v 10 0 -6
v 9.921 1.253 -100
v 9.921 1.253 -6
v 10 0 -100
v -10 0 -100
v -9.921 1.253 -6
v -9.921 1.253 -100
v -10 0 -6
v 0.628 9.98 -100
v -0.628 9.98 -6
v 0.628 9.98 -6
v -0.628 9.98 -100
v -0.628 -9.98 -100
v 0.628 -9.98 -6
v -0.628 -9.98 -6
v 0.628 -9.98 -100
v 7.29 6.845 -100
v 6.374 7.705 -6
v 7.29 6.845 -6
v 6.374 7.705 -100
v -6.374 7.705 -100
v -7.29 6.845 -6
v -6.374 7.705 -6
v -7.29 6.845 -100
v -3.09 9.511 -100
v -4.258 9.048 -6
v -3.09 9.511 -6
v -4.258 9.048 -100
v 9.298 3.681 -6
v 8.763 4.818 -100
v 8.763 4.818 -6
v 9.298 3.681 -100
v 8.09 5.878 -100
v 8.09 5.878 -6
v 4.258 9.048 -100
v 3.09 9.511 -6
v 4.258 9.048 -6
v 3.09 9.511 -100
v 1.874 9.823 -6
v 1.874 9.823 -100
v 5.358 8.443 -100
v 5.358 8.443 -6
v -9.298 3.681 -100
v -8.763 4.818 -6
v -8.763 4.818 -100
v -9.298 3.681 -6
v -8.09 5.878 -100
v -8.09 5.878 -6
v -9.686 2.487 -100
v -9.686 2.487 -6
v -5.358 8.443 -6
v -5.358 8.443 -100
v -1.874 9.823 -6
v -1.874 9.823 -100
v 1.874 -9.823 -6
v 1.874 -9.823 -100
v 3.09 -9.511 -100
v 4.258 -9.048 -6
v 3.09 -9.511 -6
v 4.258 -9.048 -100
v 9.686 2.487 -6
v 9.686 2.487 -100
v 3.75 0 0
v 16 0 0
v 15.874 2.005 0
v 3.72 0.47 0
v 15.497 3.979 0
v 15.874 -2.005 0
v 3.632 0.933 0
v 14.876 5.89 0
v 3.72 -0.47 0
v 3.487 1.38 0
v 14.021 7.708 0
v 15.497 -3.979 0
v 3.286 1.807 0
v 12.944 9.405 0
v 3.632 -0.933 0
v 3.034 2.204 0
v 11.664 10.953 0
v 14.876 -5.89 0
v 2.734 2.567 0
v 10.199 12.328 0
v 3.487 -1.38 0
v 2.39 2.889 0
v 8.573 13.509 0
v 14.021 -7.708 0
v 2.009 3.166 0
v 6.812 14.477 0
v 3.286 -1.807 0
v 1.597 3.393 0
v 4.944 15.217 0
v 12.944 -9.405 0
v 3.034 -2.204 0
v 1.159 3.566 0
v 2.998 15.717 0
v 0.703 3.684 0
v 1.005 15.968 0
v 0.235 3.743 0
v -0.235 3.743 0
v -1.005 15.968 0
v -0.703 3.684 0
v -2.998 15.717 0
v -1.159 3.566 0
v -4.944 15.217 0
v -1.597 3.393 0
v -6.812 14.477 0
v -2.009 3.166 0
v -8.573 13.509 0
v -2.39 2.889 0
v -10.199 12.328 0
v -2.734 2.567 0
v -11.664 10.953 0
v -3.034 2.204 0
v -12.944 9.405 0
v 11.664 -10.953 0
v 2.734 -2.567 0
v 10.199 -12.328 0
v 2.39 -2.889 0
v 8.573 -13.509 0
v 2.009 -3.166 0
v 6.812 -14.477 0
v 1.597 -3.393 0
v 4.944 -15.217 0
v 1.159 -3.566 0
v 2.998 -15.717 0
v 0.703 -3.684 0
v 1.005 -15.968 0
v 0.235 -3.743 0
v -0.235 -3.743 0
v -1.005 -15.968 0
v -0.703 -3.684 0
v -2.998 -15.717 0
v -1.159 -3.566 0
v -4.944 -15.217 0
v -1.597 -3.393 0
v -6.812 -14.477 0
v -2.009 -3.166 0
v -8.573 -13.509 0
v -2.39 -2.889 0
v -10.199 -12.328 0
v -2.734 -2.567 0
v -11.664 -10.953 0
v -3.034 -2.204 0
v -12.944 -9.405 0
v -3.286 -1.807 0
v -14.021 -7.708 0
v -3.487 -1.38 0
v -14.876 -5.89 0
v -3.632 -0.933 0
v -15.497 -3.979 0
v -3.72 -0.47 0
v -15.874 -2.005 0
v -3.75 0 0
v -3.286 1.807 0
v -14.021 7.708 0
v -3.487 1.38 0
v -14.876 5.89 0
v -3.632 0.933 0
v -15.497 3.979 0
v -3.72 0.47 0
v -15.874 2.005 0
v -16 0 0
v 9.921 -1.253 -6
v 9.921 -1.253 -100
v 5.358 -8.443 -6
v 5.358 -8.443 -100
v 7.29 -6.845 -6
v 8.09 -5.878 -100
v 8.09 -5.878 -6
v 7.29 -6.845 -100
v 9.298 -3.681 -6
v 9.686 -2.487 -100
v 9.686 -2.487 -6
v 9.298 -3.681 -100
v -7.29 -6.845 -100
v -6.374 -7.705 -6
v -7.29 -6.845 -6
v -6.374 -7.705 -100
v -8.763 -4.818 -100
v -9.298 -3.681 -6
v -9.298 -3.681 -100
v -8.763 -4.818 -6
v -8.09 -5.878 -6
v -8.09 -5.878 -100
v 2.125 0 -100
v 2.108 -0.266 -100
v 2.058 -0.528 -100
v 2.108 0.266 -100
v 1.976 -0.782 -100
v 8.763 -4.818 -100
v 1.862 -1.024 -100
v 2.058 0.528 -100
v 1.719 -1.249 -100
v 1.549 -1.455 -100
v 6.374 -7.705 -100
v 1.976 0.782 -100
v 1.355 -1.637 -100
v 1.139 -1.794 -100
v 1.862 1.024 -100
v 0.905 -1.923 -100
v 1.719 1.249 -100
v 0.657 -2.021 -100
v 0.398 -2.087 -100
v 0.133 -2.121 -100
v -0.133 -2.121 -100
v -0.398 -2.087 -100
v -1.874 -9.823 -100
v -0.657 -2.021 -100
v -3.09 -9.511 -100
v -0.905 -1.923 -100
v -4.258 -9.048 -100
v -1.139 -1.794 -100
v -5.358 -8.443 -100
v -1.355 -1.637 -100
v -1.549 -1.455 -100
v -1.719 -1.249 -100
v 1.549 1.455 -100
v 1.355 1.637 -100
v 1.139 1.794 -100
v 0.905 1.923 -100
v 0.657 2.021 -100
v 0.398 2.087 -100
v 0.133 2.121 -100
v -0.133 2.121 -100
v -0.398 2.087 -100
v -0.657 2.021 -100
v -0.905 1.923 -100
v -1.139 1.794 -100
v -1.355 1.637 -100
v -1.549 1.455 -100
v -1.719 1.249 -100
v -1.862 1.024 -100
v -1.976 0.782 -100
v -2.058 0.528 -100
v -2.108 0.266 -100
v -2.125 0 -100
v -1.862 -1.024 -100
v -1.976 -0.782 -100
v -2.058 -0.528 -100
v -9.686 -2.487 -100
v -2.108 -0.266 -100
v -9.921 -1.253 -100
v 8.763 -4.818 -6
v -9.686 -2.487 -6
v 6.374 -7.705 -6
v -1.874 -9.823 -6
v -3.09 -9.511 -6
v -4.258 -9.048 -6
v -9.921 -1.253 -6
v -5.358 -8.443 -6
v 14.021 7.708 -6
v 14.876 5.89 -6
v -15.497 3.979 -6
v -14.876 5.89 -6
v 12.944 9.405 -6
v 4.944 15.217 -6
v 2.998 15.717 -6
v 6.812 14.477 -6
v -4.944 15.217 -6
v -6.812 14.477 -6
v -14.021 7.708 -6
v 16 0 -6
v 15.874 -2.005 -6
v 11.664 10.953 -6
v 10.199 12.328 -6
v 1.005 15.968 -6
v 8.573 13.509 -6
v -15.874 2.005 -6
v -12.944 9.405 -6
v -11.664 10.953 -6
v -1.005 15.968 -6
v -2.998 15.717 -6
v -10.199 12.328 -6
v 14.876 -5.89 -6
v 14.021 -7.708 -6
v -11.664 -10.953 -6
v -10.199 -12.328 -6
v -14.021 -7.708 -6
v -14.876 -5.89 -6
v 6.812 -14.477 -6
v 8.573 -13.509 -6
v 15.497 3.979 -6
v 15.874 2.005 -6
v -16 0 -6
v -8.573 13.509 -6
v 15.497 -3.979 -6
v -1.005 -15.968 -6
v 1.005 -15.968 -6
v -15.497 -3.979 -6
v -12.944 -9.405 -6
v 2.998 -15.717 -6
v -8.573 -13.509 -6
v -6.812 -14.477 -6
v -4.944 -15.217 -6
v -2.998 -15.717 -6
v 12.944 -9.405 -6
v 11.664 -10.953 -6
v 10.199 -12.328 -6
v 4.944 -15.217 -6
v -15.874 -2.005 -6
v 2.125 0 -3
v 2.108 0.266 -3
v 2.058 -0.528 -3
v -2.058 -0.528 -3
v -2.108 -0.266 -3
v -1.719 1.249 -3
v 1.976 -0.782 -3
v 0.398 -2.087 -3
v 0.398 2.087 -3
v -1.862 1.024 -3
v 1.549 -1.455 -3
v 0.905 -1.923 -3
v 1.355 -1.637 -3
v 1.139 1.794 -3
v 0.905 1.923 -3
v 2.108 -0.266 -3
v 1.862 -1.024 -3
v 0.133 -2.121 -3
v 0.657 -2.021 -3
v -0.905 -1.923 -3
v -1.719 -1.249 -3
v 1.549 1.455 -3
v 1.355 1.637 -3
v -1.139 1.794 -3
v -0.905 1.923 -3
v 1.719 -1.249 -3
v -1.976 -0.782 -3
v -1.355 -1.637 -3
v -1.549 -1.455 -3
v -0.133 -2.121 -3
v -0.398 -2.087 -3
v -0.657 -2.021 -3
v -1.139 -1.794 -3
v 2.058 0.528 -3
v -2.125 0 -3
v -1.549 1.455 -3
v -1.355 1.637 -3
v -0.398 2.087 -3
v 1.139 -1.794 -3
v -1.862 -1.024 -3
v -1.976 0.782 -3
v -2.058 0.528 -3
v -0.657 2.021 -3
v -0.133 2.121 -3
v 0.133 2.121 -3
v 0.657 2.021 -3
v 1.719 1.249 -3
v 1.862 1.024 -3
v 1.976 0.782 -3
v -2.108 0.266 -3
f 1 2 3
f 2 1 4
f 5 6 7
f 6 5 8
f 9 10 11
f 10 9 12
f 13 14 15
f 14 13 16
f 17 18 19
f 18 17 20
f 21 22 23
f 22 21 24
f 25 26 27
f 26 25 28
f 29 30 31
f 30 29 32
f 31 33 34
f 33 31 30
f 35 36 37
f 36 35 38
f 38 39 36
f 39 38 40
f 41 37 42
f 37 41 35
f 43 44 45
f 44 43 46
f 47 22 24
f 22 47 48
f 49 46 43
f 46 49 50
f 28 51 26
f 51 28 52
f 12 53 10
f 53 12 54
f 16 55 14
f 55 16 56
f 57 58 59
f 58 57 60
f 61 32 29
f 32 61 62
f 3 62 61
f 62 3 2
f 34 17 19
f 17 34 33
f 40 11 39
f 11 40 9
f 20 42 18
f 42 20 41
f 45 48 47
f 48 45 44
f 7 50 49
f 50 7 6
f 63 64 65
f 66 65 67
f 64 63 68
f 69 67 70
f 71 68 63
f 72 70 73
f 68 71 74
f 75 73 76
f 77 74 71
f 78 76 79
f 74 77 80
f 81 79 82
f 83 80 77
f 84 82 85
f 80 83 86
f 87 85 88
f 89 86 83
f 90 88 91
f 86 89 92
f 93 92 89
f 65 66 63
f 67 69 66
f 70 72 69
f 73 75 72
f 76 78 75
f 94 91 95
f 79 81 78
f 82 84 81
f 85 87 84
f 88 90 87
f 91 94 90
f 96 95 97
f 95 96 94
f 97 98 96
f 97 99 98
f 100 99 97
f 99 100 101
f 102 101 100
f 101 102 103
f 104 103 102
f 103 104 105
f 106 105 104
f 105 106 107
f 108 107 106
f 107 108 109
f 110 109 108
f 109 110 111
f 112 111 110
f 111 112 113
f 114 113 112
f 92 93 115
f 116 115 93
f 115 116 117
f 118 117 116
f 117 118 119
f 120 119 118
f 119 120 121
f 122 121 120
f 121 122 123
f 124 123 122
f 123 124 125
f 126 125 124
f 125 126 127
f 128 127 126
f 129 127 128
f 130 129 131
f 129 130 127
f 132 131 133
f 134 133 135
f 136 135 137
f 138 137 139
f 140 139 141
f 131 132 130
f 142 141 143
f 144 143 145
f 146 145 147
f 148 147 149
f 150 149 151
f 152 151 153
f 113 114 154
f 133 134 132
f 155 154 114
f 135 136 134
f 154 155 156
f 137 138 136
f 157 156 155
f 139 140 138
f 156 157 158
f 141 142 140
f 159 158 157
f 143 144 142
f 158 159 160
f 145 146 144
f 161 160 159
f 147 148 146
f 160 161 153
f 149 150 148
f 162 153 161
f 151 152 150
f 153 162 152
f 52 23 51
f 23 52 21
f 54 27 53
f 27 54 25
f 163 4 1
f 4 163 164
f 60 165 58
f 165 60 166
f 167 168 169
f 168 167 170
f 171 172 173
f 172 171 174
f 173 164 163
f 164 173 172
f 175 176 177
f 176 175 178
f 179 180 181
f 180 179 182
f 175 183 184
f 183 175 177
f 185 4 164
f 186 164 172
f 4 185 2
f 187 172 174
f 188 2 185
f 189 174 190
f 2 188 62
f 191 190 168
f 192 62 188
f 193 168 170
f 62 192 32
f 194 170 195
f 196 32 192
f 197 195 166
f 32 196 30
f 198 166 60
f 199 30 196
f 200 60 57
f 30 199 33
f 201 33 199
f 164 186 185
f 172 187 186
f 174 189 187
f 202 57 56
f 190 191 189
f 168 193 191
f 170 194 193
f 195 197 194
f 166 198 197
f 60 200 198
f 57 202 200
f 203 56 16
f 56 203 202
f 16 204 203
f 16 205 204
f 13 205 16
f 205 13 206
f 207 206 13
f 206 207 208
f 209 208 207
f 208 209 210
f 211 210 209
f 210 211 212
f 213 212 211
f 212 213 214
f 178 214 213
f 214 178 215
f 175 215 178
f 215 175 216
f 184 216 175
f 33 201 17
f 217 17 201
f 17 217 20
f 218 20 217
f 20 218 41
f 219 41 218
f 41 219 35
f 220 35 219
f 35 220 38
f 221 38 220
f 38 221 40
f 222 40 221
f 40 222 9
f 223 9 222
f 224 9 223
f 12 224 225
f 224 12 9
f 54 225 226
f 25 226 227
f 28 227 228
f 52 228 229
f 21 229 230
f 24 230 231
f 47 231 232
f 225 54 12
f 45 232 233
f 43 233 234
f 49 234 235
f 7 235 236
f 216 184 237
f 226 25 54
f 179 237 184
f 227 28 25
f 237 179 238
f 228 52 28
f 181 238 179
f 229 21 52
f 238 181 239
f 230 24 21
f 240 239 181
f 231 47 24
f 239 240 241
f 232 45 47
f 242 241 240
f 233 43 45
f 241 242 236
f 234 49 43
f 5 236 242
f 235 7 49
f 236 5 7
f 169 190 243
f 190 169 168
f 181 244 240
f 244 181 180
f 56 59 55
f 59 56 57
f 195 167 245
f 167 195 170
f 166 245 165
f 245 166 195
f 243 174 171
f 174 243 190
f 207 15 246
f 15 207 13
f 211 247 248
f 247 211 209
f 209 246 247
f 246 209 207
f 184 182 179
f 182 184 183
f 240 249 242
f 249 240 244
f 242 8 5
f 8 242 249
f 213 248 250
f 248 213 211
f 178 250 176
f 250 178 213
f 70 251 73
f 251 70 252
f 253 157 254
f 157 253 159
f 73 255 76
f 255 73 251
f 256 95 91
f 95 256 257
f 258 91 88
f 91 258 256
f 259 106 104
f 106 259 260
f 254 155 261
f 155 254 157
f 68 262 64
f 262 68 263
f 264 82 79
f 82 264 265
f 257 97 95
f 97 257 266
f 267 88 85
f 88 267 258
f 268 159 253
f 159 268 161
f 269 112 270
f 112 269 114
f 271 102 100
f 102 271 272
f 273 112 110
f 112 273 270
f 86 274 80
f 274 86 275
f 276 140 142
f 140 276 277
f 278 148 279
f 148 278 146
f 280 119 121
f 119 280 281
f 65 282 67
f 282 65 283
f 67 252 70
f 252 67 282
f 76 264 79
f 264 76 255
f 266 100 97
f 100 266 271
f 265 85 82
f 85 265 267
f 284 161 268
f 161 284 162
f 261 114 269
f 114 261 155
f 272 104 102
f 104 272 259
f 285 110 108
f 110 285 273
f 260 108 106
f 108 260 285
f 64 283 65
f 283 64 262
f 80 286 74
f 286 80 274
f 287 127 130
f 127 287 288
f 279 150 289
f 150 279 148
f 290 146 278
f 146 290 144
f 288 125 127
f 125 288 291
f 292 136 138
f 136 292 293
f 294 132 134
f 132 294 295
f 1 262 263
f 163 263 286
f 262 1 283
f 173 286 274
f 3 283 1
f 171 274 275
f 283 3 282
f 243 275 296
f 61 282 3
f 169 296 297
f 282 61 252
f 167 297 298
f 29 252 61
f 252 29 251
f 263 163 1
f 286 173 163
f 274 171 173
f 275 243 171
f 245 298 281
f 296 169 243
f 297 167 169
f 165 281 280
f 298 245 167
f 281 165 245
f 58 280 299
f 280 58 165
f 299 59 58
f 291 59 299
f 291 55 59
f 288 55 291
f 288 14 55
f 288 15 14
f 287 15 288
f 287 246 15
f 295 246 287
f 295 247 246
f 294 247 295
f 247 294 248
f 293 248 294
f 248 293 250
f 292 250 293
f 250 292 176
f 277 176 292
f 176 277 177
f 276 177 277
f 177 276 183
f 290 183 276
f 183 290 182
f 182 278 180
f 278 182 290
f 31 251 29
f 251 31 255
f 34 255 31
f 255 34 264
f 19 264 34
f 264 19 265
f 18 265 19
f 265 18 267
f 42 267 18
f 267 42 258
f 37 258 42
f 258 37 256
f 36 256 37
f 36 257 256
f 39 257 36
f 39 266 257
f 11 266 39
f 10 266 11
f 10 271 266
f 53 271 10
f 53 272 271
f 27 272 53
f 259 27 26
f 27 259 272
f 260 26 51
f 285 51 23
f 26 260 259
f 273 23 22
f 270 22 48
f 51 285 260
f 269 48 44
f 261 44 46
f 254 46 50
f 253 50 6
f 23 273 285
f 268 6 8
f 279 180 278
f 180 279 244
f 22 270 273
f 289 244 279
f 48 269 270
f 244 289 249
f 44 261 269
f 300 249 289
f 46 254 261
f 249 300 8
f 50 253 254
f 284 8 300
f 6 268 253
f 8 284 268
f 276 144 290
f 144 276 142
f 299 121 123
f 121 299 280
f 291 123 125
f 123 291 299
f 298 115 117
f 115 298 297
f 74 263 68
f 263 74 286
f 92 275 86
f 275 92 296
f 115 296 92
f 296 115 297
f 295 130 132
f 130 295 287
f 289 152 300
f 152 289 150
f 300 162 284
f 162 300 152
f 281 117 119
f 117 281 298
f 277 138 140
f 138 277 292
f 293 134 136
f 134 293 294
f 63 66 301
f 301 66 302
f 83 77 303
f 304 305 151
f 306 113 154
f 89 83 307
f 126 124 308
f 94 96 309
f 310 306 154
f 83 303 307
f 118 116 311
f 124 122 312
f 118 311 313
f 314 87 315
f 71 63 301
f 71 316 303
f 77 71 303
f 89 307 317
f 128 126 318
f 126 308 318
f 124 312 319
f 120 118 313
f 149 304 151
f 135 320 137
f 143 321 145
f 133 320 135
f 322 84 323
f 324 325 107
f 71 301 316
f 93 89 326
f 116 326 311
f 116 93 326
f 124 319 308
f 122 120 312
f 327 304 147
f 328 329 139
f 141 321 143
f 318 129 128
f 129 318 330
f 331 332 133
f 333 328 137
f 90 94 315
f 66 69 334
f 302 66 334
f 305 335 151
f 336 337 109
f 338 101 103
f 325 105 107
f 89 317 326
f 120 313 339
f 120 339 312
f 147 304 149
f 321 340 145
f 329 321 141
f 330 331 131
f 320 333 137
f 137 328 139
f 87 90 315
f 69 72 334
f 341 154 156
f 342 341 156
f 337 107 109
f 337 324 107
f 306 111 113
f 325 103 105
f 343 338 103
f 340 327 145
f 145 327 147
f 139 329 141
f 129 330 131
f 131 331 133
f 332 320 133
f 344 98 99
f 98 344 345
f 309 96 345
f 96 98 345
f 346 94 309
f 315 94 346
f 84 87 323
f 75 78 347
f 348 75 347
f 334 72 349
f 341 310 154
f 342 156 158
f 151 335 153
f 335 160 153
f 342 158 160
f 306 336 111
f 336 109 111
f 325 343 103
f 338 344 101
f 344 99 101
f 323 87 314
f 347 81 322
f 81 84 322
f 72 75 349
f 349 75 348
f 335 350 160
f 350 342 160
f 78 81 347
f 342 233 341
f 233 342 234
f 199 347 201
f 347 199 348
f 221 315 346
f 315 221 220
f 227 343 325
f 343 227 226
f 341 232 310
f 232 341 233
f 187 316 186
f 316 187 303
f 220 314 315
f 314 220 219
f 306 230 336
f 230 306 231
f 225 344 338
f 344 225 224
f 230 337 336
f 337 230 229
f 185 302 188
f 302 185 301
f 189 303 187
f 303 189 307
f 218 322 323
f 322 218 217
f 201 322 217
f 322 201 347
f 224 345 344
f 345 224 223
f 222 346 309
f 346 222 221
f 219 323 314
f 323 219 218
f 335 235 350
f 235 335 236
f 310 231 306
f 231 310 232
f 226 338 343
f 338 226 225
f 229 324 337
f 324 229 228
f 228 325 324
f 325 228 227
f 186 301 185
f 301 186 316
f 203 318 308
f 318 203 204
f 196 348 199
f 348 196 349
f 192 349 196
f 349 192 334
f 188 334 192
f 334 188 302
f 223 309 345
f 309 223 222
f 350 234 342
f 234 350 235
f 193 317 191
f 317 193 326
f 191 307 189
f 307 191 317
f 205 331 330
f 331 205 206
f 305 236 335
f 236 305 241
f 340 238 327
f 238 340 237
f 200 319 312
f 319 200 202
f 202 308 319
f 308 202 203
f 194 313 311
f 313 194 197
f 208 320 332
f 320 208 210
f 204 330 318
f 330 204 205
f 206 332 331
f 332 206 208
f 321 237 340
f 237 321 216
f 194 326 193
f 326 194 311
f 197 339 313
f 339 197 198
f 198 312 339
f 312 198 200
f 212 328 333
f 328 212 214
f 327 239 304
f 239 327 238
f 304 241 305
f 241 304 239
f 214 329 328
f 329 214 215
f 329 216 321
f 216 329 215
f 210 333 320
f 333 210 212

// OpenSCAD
$fn = 50;


difference() {
	union() {
		translate(v = [0, 0, -100.0000000000]) {
			cylinder(h = 100, r = 10.0000000000);
		}
		translate(v = [0, 0, -6.0000000000]) {
			cylinder(h = 6, r = 16.0000000000);
		}
	}
	union() {
		translate(v = [0, 0, 0]) {
			rotate(a = [0, 0, 0]) {
				difference() {
					union() {
						#translate(v = [0, 0, -100.0000000000]) {
							cylinder(h = 100, r = 2.0000000000);
						}
						#translate(v = [0, 0, -3]) {
							cylinder(h = 3, r1 = 2.1250000000, r2 = 3.7500000000);
						}
						#translate(v = [0, 0, -100.0000000000]) {
							cylinder(h = 100, r = 2.1250000000);
						}
						#translate(v = [0, 0, -100.0000000000]) {
							cylinder(h = 100, r = 2.0000000000);
						}
					}
					union();
				}
			}
		}
	}
}
